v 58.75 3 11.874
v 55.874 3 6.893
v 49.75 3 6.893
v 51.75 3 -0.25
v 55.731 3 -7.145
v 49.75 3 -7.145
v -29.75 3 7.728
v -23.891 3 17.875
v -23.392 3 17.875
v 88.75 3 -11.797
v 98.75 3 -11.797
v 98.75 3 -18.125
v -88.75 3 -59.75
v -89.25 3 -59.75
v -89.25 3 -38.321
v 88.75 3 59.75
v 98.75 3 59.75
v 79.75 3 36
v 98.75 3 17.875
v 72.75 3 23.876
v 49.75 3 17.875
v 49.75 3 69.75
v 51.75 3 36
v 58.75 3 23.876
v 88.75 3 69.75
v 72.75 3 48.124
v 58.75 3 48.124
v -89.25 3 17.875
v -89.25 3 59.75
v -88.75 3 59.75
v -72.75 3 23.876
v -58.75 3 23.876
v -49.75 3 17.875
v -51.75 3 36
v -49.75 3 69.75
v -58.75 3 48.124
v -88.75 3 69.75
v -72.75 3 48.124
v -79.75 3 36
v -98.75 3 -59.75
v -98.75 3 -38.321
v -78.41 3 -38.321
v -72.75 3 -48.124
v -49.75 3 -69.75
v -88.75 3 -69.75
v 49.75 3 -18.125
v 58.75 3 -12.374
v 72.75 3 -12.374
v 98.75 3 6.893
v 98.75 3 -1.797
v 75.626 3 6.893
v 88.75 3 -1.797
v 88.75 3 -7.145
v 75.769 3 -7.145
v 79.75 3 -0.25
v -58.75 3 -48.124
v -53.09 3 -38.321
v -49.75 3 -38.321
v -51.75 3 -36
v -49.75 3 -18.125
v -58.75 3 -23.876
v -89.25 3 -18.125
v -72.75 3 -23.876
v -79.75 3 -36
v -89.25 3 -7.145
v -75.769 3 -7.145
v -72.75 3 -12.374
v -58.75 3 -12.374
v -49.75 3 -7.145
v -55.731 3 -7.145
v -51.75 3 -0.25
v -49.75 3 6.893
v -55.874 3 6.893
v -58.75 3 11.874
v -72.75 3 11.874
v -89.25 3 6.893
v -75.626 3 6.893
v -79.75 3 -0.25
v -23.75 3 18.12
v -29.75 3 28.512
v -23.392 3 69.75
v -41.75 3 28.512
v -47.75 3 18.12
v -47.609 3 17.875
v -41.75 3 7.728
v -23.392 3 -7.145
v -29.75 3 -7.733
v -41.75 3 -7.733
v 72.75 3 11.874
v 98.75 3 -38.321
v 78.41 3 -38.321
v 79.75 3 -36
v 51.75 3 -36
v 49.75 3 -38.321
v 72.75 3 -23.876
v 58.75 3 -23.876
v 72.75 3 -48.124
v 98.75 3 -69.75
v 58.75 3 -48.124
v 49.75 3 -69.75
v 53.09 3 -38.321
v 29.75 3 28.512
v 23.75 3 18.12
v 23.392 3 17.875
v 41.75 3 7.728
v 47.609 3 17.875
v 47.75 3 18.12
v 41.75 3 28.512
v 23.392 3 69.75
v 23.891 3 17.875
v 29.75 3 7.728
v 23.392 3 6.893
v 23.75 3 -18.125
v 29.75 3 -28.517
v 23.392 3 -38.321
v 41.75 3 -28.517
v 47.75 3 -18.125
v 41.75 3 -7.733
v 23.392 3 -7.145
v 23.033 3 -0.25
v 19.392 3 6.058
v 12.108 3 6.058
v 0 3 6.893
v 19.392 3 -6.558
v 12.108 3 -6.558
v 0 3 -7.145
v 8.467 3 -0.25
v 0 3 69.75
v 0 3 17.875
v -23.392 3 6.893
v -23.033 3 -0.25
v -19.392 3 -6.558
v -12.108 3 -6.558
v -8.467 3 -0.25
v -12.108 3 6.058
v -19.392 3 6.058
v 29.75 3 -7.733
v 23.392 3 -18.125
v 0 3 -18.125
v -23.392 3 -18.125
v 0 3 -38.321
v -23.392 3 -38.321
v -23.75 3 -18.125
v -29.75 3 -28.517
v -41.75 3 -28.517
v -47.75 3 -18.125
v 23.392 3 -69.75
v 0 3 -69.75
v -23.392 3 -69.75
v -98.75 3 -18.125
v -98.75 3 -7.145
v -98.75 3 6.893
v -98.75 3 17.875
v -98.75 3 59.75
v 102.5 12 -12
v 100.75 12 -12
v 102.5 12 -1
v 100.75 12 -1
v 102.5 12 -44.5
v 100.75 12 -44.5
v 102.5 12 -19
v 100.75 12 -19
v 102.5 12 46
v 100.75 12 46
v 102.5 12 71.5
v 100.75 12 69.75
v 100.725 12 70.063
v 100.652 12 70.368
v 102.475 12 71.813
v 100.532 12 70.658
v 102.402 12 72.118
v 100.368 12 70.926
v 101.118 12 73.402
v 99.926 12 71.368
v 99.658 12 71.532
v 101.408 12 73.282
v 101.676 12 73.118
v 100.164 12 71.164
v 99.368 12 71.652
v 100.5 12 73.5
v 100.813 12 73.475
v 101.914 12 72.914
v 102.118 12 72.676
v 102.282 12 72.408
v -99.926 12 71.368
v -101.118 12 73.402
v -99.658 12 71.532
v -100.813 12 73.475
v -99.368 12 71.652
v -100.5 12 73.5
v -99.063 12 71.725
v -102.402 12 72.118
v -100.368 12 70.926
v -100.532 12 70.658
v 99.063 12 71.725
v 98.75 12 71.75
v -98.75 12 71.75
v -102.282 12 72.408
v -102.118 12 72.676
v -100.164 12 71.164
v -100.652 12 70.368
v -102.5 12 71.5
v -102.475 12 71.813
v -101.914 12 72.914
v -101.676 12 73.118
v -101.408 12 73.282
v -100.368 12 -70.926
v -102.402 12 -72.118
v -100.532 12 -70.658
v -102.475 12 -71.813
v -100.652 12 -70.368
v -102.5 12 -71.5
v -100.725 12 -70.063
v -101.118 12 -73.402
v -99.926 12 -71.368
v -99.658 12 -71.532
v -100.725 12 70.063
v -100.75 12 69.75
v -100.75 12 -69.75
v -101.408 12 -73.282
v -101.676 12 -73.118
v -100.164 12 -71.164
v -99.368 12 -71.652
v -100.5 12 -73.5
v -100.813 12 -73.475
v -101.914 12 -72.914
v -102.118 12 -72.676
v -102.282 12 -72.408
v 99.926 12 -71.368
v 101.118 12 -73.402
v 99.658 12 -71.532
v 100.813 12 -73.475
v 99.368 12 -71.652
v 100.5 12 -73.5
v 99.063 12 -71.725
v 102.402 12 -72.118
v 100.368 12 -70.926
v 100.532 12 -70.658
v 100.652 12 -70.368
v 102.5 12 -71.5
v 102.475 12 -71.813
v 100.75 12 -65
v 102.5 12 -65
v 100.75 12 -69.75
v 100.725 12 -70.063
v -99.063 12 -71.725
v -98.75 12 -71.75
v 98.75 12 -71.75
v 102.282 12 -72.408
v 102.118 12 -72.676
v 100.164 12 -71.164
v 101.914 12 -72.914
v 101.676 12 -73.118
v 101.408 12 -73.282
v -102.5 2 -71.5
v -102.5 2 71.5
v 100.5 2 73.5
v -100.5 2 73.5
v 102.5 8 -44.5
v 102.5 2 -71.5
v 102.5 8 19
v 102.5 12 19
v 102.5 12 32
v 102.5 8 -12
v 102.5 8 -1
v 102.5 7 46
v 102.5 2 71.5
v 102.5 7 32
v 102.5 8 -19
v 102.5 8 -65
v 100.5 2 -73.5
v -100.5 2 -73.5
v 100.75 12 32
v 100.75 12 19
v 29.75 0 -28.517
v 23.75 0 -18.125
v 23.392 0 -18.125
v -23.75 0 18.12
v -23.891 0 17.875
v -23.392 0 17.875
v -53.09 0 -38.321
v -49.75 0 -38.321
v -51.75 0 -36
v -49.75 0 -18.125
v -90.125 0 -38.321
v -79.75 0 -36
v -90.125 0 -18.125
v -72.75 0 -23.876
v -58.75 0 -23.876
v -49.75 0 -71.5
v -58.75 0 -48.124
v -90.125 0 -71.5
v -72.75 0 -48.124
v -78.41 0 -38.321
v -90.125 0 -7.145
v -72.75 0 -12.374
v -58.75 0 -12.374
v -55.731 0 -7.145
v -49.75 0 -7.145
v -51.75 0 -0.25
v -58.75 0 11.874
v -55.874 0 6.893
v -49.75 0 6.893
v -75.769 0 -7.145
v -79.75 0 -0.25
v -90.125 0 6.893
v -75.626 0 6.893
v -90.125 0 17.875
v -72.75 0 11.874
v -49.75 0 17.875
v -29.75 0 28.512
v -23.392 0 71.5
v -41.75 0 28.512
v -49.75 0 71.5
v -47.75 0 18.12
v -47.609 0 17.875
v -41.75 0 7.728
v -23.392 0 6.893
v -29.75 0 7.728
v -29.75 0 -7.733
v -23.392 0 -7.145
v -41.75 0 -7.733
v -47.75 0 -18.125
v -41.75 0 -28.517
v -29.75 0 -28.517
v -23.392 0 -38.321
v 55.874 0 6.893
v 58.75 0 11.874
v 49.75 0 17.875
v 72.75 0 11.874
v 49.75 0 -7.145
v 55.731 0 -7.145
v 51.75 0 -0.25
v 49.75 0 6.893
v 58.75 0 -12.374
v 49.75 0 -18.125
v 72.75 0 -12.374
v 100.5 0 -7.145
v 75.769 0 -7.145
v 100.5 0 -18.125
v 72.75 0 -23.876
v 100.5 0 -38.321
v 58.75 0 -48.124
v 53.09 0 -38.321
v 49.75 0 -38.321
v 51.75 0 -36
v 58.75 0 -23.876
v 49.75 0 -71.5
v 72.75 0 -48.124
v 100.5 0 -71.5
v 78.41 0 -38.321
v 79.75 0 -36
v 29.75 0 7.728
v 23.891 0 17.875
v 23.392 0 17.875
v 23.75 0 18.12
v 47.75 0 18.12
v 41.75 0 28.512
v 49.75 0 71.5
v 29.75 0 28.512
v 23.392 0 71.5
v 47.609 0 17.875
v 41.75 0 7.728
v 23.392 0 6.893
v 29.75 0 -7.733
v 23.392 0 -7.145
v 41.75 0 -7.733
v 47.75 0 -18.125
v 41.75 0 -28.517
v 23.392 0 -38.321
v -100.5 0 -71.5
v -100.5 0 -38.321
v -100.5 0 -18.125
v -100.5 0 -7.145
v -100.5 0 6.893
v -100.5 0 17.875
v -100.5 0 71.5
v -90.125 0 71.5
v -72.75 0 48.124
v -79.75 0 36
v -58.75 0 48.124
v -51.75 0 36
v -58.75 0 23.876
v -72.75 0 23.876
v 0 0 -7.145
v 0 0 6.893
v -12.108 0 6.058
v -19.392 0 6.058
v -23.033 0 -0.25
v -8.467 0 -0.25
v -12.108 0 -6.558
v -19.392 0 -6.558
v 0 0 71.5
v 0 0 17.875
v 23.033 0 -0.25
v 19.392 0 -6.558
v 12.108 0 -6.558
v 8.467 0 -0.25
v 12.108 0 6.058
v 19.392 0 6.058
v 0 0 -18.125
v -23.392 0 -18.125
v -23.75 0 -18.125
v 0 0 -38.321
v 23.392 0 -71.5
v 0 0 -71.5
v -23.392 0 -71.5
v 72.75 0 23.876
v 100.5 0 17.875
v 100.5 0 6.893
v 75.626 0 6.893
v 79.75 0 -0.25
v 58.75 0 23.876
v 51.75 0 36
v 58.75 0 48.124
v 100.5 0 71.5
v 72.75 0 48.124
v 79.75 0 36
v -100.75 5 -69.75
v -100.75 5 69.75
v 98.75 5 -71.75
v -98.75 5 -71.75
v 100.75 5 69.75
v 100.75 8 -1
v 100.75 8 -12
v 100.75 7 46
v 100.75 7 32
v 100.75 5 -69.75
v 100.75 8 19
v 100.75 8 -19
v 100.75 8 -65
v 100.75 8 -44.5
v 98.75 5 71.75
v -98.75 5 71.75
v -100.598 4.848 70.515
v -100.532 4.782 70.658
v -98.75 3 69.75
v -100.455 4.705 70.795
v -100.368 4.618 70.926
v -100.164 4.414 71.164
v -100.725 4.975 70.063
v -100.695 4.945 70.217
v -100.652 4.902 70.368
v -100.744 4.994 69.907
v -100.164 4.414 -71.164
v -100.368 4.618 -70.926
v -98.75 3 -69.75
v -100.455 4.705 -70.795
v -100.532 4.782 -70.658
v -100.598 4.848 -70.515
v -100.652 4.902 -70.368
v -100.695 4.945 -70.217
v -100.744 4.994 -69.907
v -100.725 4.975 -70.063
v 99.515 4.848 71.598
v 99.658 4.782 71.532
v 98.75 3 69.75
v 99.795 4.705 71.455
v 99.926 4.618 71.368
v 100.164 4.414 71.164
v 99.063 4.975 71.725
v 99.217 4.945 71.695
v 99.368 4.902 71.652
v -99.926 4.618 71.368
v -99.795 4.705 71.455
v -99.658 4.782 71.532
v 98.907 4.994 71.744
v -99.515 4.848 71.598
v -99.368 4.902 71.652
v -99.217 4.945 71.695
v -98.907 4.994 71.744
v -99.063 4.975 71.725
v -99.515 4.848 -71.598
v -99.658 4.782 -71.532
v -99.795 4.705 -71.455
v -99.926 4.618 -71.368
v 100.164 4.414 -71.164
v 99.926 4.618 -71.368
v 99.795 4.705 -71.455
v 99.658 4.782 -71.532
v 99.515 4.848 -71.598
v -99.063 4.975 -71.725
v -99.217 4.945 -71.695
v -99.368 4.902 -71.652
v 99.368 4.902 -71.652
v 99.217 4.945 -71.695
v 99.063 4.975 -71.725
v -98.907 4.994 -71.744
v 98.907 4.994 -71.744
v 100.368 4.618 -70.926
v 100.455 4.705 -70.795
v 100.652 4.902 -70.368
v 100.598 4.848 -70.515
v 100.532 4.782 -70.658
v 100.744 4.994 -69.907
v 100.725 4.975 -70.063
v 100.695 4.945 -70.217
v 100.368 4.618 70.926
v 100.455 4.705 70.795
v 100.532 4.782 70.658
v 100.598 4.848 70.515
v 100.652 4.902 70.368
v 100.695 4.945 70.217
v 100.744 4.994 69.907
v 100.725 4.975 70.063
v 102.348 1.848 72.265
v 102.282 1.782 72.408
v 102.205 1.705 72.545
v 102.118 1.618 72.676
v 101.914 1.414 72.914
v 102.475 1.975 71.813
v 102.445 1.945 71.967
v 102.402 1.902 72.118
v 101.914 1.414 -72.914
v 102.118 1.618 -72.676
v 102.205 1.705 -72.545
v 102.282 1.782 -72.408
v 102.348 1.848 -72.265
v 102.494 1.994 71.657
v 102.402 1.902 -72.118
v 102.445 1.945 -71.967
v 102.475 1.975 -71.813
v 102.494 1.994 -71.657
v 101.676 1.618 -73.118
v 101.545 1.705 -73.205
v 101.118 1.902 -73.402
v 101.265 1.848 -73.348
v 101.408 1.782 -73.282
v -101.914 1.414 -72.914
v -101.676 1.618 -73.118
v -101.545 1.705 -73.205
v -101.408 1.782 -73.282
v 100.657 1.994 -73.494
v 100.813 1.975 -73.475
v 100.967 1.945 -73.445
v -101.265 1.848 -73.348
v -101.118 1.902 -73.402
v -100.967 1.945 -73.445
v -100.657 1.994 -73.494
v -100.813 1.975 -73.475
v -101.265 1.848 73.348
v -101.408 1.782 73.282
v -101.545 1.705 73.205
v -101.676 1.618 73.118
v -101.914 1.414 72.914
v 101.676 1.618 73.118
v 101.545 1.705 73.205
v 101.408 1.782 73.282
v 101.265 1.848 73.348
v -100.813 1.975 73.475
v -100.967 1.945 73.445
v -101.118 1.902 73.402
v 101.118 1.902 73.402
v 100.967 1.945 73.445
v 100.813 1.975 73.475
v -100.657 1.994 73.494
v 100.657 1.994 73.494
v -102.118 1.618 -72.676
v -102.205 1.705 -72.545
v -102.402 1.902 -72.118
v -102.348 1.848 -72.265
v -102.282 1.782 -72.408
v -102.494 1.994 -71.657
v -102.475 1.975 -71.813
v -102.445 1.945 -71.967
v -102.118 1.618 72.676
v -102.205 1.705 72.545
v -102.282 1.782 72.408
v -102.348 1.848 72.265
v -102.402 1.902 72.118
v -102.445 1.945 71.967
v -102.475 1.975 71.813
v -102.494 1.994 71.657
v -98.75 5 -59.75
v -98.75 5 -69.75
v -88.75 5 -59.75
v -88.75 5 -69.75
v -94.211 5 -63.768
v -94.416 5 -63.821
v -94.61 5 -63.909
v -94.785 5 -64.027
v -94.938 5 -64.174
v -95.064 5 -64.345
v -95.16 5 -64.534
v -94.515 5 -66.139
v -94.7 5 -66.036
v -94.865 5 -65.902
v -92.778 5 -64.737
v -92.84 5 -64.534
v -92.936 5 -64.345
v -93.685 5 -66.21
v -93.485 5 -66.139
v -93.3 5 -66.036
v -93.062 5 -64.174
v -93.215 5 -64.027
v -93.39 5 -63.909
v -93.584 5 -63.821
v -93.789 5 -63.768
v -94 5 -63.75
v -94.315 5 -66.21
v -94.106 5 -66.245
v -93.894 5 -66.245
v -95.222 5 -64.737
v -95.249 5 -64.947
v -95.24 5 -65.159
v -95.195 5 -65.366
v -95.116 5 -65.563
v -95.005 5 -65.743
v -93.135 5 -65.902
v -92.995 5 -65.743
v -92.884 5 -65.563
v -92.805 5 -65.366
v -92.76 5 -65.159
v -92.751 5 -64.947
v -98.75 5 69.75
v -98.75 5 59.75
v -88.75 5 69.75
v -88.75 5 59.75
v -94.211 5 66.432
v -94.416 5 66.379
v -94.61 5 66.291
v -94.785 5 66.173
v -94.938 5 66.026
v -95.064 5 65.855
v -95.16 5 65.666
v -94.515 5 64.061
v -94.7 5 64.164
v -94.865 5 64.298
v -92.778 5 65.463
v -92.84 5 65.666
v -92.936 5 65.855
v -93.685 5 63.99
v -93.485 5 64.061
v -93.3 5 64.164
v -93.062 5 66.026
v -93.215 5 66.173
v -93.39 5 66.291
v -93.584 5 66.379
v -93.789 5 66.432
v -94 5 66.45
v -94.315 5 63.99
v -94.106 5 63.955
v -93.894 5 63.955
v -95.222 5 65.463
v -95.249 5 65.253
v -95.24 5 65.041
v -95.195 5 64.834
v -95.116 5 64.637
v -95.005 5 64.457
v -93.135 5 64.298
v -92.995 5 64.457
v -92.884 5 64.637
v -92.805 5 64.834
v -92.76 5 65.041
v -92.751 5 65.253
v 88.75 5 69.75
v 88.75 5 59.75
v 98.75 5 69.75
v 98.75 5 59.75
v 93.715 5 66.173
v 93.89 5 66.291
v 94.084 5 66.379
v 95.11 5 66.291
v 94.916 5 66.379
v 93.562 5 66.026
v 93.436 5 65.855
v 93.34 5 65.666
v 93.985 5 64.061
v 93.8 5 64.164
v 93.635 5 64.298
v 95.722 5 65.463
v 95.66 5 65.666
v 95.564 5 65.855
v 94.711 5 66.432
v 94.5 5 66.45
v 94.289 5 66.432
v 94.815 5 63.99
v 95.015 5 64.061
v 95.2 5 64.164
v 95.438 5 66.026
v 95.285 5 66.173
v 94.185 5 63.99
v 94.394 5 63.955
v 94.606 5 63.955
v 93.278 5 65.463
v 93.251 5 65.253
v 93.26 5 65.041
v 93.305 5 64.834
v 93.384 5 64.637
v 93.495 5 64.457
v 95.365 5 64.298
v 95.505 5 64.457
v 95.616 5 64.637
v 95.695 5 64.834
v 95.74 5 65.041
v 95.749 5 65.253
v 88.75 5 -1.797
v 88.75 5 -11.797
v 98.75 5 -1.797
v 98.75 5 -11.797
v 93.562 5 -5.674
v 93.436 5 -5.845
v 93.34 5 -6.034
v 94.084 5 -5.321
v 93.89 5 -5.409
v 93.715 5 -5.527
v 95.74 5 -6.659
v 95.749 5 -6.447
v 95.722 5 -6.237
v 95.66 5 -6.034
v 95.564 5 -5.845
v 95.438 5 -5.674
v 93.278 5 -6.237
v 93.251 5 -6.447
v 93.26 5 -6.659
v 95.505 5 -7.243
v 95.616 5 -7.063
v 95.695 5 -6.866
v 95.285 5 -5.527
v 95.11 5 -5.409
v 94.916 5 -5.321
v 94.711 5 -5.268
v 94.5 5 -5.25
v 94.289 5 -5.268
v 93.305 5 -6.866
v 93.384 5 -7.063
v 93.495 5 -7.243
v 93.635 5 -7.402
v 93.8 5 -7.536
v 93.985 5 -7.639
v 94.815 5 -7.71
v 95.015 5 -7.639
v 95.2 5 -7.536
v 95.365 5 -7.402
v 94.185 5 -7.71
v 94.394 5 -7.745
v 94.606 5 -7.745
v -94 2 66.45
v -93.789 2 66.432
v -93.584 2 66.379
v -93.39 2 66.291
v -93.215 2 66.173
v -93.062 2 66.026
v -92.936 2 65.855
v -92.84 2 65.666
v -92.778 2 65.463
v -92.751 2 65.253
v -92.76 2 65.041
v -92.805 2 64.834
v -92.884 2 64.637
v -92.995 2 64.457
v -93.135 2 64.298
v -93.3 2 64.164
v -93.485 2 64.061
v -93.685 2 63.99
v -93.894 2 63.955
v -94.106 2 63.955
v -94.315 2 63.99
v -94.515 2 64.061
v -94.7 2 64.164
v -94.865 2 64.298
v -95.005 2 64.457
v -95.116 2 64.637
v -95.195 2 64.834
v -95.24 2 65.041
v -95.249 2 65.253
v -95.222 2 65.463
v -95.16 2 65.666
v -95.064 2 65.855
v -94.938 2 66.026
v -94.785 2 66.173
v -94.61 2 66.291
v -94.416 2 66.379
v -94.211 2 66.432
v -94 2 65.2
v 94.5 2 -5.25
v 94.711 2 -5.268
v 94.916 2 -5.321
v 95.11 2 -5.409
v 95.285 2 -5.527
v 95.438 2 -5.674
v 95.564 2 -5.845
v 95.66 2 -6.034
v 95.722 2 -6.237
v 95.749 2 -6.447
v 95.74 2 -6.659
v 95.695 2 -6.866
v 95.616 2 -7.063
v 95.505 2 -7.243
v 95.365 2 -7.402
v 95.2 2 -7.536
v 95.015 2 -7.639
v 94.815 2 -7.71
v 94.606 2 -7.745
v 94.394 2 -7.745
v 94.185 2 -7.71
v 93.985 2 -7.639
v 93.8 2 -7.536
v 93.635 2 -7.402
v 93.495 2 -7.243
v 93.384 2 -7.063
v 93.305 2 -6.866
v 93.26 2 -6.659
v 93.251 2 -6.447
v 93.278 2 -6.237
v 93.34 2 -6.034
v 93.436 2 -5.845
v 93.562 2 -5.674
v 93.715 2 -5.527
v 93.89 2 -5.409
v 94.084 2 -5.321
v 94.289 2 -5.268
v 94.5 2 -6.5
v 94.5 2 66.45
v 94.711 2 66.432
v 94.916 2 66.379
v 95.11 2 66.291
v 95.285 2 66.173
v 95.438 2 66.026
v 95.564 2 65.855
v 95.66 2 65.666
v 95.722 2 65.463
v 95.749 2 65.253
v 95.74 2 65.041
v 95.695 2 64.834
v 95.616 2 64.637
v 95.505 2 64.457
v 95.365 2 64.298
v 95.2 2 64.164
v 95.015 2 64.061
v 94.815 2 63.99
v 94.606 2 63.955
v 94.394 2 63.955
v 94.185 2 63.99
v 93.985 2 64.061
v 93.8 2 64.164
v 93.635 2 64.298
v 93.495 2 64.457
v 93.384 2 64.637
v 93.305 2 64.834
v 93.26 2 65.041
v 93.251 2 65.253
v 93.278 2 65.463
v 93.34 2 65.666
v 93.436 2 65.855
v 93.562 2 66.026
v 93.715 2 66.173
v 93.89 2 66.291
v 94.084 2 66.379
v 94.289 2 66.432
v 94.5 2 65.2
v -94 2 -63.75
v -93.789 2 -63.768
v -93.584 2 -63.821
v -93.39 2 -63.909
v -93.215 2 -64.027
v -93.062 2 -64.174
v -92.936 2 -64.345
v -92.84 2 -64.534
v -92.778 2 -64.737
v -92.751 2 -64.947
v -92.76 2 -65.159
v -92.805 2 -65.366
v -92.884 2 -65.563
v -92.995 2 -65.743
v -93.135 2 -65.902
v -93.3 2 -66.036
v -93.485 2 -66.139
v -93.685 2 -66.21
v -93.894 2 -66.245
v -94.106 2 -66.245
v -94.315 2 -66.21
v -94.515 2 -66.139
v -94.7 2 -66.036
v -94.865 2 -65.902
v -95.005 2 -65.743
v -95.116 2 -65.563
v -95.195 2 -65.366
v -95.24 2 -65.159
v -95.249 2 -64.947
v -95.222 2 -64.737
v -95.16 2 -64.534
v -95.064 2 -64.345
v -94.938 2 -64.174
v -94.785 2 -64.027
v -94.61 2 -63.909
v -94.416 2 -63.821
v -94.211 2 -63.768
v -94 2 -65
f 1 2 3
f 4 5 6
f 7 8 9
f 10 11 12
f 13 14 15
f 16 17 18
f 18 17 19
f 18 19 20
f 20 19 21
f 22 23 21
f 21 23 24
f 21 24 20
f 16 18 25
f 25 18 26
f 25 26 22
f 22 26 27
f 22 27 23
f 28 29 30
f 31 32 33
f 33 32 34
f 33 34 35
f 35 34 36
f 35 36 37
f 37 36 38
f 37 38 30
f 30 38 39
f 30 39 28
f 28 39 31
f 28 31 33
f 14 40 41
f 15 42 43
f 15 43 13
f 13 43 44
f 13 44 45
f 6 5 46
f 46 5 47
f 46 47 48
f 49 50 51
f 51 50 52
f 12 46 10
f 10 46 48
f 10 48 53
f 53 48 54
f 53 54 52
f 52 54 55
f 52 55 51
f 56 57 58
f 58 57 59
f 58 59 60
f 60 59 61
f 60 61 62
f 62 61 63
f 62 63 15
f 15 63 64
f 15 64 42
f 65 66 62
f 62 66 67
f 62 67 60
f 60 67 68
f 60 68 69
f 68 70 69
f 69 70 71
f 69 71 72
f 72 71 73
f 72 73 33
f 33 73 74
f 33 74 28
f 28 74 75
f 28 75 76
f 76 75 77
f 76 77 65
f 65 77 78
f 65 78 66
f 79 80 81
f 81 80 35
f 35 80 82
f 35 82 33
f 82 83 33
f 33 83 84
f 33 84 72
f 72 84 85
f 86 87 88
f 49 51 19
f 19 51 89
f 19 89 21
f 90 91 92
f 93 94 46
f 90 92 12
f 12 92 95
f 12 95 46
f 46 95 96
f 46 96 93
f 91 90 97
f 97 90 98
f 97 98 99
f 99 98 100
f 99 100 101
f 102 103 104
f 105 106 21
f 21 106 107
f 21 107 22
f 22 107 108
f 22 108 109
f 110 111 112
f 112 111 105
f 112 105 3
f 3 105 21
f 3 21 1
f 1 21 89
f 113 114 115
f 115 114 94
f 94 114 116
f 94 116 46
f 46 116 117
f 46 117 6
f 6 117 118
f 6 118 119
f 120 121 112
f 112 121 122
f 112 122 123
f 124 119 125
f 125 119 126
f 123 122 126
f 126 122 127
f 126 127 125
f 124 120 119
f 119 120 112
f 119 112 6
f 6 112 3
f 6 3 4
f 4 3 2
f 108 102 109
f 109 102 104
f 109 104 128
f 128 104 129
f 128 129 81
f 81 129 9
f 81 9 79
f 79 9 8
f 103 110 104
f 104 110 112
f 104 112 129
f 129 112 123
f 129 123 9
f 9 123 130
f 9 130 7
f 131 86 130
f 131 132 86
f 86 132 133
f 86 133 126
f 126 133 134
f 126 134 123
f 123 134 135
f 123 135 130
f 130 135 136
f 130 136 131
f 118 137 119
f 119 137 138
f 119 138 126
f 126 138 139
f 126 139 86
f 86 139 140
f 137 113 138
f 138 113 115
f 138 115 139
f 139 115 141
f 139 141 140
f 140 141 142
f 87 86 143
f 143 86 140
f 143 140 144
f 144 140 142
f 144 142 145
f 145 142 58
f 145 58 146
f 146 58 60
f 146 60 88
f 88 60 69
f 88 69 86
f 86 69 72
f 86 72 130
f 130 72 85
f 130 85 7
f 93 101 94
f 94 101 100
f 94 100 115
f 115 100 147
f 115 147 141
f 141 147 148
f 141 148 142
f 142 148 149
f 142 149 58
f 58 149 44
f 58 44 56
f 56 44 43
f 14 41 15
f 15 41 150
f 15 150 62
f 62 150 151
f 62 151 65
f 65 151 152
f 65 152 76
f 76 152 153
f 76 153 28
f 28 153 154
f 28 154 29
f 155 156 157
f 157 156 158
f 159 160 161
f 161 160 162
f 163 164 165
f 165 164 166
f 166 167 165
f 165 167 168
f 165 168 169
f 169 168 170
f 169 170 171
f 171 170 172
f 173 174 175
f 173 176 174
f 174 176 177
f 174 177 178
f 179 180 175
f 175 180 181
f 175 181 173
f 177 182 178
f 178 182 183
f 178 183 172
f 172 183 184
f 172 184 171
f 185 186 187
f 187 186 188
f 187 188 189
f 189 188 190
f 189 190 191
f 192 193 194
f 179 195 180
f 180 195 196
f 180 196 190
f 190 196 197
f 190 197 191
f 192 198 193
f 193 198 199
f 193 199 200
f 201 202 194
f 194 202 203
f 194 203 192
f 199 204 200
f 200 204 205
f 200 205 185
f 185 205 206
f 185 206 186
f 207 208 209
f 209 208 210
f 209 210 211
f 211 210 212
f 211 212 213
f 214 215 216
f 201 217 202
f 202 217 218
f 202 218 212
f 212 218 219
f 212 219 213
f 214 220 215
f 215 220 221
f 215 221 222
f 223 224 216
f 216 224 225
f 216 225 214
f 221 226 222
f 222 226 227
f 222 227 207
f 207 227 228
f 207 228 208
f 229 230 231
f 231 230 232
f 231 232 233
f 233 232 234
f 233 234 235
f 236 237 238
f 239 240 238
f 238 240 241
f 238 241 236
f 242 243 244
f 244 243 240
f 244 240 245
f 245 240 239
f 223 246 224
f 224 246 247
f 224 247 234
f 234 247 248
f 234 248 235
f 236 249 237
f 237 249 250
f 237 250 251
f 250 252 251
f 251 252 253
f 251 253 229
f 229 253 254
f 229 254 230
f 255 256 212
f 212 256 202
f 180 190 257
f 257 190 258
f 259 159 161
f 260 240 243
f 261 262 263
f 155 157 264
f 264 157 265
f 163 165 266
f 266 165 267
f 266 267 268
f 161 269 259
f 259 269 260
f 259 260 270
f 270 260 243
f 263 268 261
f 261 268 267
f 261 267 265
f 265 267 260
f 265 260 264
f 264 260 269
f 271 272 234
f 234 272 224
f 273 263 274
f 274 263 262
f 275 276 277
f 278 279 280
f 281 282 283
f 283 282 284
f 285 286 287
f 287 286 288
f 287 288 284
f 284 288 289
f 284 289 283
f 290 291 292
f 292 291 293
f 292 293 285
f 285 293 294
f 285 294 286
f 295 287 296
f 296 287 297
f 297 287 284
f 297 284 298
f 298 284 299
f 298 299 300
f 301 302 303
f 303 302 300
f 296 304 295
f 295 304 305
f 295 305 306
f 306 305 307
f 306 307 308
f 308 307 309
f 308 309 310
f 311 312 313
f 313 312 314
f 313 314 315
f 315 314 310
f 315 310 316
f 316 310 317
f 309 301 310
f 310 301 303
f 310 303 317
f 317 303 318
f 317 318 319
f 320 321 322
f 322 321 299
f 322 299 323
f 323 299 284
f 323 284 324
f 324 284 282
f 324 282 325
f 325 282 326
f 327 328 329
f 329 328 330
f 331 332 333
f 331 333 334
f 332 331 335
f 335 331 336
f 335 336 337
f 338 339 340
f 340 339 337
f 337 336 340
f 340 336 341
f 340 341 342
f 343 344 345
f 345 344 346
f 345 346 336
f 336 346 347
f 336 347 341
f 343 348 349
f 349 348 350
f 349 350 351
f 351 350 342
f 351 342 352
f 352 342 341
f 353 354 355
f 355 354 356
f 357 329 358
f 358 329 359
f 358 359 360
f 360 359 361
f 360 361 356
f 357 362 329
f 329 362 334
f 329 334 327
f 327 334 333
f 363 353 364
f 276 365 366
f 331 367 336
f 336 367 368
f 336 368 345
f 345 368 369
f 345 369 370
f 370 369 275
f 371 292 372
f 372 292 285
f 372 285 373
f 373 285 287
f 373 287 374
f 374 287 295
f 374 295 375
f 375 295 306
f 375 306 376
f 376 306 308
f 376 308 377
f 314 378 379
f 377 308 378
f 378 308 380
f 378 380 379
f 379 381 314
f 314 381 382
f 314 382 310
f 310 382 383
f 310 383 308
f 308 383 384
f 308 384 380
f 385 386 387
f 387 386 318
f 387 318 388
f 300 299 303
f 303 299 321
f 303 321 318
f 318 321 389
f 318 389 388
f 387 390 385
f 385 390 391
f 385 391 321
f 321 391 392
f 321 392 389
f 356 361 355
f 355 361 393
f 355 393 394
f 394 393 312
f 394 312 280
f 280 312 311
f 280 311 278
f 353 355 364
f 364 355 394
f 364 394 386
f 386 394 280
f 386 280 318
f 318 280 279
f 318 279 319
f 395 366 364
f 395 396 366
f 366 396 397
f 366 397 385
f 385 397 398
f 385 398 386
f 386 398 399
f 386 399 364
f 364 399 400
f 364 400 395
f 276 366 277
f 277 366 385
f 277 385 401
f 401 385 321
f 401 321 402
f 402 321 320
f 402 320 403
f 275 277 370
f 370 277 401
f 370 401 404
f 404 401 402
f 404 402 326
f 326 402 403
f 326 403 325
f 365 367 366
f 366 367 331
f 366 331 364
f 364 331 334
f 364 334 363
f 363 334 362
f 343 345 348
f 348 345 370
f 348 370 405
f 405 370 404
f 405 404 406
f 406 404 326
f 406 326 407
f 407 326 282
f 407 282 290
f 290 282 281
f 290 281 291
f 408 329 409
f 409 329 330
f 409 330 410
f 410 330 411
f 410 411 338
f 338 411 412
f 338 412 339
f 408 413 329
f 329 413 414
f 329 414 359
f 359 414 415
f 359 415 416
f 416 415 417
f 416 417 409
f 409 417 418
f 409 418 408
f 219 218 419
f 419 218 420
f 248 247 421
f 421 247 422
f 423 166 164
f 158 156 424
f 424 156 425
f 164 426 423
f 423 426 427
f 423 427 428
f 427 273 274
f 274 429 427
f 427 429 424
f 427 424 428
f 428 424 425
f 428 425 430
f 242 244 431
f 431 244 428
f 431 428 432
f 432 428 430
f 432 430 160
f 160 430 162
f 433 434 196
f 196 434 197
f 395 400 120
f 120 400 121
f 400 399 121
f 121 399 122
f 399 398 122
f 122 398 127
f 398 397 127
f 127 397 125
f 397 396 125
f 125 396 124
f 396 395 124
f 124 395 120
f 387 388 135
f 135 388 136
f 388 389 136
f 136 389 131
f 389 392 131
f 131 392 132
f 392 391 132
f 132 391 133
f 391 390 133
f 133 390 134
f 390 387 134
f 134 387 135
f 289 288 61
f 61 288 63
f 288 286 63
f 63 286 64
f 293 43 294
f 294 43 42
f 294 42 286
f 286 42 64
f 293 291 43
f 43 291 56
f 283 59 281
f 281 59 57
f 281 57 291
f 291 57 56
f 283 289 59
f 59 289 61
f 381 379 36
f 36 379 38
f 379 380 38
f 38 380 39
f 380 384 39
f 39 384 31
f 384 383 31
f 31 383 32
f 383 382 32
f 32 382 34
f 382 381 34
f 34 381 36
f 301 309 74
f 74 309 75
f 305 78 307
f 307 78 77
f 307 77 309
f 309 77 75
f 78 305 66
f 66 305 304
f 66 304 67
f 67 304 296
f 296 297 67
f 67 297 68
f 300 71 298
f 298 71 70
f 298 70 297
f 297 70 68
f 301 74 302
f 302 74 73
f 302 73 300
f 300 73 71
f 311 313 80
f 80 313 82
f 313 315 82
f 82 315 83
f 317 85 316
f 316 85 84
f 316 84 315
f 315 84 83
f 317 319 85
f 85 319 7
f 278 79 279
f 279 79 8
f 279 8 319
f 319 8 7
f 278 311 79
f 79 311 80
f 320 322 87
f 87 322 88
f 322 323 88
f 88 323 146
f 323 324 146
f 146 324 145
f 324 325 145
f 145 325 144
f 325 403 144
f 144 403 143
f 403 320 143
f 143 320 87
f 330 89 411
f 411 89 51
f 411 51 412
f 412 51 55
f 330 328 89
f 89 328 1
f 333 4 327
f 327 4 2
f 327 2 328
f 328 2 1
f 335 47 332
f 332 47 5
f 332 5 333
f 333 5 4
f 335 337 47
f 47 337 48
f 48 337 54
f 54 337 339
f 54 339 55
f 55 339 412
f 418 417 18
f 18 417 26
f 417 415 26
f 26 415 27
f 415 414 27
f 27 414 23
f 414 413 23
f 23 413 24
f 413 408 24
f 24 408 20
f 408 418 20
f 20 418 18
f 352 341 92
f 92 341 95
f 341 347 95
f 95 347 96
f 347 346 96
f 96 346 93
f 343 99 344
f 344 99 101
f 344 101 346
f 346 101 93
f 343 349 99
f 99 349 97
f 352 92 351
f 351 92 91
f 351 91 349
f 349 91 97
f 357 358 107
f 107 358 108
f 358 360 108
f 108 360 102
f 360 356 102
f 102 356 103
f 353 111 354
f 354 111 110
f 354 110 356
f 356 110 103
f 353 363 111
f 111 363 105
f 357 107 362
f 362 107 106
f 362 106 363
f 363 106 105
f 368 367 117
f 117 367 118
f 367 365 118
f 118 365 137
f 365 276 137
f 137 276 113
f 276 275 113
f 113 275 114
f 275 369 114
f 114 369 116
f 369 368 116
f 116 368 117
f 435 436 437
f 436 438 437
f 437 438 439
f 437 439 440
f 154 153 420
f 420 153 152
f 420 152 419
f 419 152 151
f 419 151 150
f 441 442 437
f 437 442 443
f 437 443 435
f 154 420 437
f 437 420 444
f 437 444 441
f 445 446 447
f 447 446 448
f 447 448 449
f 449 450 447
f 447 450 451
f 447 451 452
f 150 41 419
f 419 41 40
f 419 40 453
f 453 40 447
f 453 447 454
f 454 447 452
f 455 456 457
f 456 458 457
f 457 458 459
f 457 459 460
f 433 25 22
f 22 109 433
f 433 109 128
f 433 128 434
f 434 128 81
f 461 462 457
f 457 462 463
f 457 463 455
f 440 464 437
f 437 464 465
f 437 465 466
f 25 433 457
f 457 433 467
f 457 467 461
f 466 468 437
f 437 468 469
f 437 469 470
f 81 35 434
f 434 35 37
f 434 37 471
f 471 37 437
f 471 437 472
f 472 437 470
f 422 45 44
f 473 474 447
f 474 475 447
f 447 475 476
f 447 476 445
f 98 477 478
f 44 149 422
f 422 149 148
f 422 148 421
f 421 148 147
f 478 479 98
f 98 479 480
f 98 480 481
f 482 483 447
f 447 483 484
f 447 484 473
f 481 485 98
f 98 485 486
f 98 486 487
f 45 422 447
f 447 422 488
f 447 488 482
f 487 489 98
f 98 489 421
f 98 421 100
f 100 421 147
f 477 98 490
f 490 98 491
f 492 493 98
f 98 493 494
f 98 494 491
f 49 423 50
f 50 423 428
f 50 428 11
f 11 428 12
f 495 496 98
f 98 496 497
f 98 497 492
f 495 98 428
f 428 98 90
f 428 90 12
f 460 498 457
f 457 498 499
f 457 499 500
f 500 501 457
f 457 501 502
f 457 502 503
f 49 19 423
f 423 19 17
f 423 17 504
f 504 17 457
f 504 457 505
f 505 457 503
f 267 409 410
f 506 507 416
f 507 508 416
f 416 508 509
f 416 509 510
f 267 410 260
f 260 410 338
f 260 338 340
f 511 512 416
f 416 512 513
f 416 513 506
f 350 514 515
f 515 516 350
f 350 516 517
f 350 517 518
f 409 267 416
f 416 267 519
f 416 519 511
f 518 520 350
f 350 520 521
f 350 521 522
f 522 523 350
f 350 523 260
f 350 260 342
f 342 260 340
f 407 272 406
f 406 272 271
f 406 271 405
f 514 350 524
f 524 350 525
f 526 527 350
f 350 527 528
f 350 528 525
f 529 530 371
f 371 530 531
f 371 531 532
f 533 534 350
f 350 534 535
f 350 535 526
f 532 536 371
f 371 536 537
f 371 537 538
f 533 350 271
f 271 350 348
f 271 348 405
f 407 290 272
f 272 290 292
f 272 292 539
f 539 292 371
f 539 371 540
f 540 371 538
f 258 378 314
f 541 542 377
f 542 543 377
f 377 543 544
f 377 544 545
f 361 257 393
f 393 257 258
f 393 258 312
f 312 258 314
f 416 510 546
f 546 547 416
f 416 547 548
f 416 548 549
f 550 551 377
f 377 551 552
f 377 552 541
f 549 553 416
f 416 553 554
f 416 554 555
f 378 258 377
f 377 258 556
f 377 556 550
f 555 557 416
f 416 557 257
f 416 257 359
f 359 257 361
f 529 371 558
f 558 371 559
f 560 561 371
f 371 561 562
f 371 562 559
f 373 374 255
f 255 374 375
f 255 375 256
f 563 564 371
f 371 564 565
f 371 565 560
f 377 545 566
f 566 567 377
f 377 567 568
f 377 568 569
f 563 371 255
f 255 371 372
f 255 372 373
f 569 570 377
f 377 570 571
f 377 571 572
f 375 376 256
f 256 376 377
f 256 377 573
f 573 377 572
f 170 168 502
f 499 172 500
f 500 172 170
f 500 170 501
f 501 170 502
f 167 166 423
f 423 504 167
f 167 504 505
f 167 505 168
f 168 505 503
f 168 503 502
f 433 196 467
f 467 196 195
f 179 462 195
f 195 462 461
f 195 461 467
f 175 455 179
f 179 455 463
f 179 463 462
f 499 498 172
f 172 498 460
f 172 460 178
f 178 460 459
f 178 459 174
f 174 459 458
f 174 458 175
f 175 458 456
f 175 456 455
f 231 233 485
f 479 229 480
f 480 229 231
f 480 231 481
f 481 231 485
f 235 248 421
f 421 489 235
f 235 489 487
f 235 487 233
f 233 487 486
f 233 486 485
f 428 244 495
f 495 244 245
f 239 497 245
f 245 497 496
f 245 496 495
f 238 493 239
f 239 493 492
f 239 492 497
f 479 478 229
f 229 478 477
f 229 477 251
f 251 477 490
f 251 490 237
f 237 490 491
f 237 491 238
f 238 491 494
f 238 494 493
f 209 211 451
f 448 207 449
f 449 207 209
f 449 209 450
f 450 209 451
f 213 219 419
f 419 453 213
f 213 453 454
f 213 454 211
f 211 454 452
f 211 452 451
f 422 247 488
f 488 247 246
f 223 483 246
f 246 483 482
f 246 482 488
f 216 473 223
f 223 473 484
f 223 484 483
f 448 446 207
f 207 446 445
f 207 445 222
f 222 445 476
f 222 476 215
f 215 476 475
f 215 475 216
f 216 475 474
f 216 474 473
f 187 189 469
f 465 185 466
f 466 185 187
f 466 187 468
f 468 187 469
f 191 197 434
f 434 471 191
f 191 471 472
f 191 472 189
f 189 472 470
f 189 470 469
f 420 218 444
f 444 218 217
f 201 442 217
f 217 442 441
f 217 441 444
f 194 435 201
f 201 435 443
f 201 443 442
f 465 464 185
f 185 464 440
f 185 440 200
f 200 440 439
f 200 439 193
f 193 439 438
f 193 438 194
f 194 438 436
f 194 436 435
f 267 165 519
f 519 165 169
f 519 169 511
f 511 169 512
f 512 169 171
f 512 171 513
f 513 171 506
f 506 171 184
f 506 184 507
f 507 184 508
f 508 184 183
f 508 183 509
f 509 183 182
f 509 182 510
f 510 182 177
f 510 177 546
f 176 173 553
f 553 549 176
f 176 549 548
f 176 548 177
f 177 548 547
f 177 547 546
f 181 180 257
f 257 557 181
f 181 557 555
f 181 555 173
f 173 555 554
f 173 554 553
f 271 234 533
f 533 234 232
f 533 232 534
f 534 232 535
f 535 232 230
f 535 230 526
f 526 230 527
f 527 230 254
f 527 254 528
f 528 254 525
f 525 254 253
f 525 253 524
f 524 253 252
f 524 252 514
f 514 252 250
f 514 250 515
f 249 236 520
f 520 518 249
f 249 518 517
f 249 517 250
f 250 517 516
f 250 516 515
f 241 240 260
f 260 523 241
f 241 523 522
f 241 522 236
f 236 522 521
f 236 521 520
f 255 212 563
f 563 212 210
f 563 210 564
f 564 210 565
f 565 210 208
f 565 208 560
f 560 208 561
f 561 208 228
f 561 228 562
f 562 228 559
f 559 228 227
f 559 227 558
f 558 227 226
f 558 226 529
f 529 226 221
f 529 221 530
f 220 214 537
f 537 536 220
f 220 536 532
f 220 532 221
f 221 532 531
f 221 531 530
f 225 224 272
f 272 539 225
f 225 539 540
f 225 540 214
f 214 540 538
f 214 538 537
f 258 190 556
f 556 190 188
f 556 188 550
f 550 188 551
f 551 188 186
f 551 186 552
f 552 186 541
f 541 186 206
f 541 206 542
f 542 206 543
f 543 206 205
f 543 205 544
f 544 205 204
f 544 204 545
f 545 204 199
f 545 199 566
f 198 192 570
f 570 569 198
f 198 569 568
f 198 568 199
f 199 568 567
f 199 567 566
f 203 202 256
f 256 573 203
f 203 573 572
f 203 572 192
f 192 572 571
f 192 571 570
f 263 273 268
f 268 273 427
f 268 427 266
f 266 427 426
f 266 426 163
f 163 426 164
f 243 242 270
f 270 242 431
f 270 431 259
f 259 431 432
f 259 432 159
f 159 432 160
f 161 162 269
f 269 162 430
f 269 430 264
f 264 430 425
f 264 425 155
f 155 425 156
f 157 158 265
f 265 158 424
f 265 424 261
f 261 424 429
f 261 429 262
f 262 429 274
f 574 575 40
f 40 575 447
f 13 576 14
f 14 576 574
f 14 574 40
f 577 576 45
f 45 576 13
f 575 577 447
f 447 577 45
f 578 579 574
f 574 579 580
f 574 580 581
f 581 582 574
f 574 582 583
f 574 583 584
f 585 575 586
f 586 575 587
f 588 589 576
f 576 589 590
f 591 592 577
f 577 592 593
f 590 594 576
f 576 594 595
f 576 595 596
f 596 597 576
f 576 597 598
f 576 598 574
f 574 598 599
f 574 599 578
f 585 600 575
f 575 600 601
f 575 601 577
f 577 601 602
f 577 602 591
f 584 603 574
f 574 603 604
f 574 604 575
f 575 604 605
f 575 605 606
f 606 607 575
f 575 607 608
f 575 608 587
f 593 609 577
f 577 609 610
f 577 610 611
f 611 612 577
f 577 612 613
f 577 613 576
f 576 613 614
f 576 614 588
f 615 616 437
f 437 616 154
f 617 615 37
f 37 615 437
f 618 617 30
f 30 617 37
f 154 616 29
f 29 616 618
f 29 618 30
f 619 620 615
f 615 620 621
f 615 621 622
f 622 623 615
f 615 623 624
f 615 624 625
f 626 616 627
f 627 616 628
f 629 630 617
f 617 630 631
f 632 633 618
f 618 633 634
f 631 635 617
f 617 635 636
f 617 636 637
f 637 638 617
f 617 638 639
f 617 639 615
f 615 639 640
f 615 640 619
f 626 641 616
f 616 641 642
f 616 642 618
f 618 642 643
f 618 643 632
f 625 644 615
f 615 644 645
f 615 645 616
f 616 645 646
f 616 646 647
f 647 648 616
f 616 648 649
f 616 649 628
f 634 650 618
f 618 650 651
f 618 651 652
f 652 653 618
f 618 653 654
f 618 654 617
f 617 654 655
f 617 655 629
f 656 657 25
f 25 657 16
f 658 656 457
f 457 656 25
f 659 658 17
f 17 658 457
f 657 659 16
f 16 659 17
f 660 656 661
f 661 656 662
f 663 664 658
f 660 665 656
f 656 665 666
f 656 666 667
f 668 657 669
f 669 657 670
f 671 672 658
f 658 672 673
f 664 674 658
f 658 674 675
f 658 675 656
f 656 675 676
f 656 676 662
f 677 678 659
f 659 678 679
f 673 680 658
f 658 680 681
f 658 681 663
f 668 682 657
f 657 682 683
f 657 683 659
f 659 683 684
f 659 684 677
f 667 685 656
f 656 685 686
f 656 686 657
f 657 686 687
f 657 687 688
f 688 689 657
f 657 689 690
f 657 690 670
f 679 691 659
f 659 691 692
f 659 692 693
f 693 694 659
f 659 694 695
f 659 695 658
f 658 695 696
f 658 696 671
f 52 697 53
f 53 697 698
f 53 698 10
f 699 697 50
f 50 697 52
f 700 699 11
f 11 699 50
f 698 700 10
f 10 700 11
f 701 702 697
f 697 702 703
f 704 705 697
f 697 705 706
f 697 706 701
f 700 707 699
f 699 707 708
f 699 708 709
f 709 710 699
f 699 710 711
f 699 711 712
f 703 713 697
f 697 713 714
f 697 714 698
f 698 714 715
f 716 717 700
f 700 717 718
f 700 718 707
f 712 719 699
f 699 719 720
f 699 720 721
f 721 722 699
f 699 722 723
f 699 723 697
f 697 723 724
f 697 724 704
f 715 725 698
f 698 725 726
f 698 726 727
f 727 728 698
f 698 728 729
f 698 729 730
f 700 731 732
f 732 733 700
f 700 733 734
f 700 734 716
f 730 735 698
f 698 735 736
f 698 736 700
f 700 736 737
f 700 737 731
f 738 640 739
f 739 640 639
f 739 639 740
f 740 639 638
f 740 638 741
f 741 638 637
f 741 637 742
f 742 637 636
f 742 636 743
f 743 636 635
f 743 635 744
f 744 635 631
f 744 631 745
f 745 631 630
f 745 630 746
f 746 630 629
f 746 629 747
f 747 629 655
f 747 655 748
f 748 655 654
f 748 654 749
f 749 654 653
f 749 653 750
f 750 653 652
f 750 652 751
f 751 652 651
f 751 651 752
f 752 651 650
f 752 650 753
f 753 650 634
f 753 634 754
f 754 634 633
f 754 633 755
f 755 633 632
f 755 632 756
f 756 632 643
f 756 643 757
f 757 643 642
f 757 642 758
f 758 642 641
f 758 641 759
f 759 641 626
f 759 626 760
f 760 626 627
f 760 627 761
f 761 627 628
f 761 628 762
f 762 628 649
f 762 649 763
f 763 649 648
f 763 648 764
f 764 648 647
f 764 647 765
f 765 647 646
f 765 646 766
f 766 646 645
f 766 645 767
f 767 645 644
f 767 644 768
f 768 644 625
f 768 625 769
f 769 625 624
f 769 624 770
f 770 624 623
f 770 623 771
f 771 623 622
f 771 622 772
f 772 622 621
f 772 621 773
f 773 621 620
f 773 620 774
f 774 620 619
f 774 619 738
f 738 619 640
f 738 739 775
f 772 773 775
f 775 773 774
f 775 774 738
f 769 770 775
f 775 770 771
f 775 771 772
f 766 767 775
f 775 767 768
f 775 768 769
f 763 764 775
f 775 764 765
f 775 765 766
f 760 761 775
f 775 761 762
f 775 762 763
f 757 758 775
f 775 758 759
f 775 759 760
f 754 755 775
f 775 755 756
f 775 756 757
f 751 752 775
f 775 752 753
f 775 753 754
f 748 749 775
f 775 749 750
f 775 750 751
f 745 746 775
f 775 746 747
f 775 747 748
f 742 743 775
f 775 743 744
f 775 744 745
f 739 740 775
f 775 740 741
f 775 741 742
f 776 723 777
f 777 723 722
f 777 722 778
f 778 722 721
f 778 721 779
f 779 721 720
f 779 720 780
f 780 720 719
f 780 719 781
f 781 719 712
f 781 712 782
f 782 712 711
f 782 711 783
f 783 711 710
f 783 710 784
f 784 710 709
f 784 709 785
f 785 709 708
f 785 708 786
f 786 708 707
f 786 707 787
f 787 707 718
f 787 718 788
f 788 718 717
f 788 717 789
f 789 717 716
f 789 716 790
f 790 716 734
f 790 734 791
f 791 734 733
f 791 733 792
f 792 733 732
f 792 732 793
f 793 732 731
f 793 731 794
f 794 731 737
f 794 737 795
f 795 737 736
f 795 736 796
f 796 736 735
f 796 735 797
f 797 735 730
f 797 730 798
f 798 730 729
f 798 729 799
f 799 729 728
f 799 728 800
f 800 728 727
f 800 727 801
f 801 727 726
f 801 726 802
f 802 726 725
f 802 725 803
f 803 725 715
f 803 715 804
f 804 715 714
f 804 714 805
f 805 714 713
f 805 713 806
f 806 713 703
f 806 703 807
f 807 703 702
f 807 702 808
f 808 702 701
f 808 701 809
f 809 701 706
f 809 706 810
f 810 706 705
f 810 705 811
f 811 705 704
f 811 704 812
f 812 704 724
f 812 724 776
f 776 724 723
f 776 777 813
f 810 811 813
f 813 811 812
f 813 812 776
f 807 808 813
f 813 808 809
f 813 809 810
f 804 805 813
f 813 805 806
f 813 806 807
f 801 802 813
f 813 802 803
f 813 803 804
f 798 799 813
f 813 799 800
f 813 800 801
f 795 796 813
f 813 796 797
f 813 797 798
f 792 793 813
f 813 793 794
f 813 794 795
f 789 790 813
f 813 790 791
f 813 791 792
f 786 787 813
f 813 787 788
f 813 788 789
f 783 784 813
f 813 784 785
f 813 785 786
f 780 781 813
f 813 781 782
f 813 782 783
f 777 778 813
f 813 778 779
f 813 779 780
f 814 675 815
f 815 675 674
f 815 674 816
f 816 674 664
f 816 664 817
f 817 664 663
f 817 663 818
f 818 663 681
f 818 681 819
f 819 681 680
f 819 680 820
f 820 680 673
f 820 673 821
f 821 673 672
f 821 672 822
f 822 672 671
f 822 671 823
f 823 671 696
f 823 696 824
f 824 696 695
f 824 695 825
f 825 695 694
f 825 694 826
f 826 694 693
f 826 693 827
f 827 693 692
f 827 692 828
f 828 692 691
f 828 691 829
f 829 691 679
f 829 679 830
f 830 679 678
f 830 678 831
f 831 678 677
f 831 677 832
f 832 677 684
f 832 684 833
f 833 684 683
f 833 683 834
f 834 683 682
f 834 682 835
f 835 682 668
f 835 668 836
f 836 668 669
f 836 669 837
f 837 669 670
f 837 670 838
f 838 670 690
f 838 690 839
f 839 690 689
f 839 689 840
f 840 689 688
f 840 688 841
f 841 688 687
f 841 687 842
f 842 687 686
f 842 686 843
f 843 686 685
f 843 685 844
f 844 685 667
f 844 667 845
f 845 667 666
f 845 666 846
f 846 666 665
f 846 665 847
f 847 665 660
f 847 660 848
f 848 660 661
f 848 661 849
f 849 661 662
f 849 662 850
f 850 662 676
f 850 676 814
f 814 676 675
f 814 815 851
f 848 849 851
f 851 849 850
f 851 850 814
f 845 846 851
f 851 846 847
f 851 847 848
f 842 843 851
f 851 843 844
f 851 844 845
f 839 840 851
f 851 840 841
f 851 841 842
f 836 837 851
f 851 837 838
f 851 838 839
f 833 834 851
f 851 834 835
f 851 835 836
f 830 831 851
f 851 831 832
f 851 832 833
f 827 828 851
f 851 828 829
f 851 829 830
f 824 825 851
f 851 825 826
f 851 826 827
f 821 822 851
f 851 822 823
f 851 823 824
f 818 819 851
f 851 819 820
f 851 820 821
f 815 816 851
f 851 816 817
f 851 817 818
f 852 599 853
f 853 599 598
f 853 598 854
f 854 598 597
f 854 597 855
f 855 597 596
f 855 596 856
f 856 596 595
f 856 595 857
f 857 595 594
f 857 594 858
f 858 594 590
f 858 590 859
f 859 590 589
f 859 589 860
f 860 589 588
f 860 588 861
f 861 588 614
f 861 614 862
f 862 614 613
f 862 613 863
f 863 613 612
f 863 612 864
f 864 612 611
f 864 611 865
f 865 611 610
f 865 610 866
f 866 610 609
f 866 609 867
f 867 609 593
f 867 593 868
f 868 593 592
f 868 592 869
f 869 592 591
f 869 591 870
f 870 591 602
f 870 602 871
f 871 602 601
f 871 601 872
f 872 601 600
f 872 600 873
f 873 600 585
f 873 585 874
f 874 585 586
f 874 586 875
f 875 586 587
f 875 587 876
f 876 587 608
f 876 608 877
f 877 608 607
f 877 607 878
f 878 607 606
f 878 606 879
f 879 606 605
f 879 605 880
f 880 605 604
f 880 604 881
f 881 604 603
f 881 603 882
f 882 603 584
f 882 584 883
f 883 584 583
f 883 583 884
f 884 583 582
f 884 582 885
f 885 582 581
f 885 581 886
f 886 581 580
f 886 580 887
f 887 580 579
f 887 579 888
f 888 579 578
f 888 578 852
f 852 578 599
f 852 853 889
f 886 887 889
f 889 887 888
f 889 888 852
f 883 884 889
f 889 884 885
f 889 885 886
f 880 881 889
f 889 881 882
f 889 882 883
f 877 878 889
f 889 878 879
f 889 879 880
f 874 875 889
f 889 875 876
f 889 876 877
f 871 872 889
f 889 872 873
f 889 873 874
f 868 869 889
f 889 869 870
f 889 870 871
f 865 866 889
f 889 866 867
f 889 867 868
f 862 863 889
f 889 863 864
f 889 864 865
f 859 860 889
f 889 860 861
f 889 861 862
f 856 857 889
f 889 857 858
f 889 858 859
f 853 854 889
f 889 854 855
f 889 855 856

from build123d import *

# Parameters (mm, degrees)
SKETCH1_W           = 205
SKETCH1_H           = 147
BOSS_EXTRUDE1_DEPTH = 12
SKETCH2_W           = 201.5
SKETCH2_H           = 143.5
CUT_EXTRUDE1_DEPTH  = 9
CUT_EXTRUDE2_DEPTH  = 4
CHAMFER1_SIZE       = 2
FILLET1_R           = 2
SKETCH4_W           = 14
SKETCH4_H           = 5
SKETCH4_W_2         = 20
SKETCH4_H_2         = 4
SKETCH4_W_3         = 7
SKETCH4_W_4         = 20.5
CUT_EXTRUDE3_DEPTH  = 10
SKETCH5_W           = 10
SKETCH5_H           = 10
BOSS_EXTRUDE2_DEPTH = 2
SKETCH6_R           = 1.25
CUT_EXTRUDE4_DEPTH  = 3


with BuildPart() as part:
    # Sketch1 → Boss-Extrude1 (new body)
    with BuildSketch(Plane(origin=(0, 0, 0), x_dir=(1, 0, 0), z_dir=(0, 1, 0))):
        Rectangle(SKETCH1_W, SKETCH1_H)
    extrude(amount=BOSS_EXTRUDE1_DEPTH)

    # Sketch2 → Cut-Extrude1 (cut)
    with BuildSketch(Plane(origin=(0, 12, 0), x_dir=(1, 0, 0), z_dir=(0, 1, 0))):
        Rectangle(SKETCH2_W, SKETCH2_H)
    extrude(amount=-CUT_EXTRUDE1_DEPTH, mode=Mode.SUBTRACT)

    # Sketch3 → Cut-Extrude2 (cut, through all)
    with BuildSketch(Plane(origin=(0, 3, 0), x_dir=(1, 0, 0), z_dir=(0, 1, 0))):
        Polygon((23.033460859, 0.25), (19.39173043, 6.557662131), (12.10826957, 6.557662131), (8.466539141, 0.25), (12.10826957, -6.057662131), (19.39173043, -6.057662131), align=None)
        Polygon((47.75, 18.125), (41.75, 28.517304845), (29.75, 28.517304845), (23.75, 18.125), (29.75, 7.732695155), (41.75, 7.732695155), align=None)
        Polygon((47.75, -18.12), (41.75, -7.727695155), (29.75, -7.727695155), (23.75, -18.12), (29.75, -28.512304845), (41.75, -28.512304845), align=None)
        Polygon((79.75, 0.25), (72.75, 12.374355653), (58.75, 12.374355653), (51.75, 0.25), (58.75, -11.874355653), (72.75, -11.874355653), align=None)
        Polygon((79.75, -36), (72.75, -23.875644347), (58.75, -23.875644347), (51.75, -36), (58.75, -48.124355653), (72.75, -48.124355653), align=None)
        Polygon((79.75, 36), (72.75, 48.124355653), (58.75, 48.124355653), (51.75, 36), (58.75, 23.875644347), (72.75, 23.875644347), align=None)
        Polygon((-19.39173043, -6.057662131), (-23.033460859, 0.25), (-19.39173043, 6.557662131), (-12.10826957, 6.557662131), (-8.466539141, 0.25), (-12.10826957, -6.057662131), align=None)
        Polygon((-72.75, 23.875644347), (-79.75, 36), (-72.75, 48.124355653), (-58.75, 48.124355653), (-51.75, 36), (-58.75, 23.875644347), align=None)
        Polygon((-72.75, -48.124355653), (-79.75, -36), (-72.75, -23.875644347), (-58.75, -23.875644347), (-51.75, -36), (-58.75, -48.124355653), align=None)
        Polygon((-72.75, -11.874355653), (-79.75, 0.25), (-72.75, 12.374355653), (-58.75, 12.374355653), (-51.75, 0.25), (-58.75, -11.874355653), align=None)
        Polygon((-41.75, -28.512304845), (-47.75, -18.12), (-41.75, -7.727695155), (-29.75, -7.727695155), (-23.75, -18.12), (-29.75, -28.512304845), align=None)
        Polygon((-41.75, 7.732695155), (-47.75, 18.125), (-41.75, 28.517304845), (-29.75, 28.517304845), (-23.75, 18.125), (-29.75, 7.732695155), align=None)
    extrude(amount=-CUT_EXTRUDE2_DEPTH, mode=Mode.SUBTRACT)

    # Chamfer1
    chamfer1_edges = [part.edges().sort_by_distance(p)[0] for p in [
        (-100.75, 3, 0),
        (0, 3, -71.75),
        (100.75, 3, 0),
        (0, 3, 71.75),
        (0, 0, -73.5),
        (102.5, 0, 0),
        (0, 0, 73.5),
        (-102.5, 0, 0),
    ]]
    chamfer(chamfer1_edges, length=CHAMFER1_SIZE)

    # Fillet1
    fillet1_edges = [part.edges().sort_by_distance(p)[0] for p in [
        (100.75, 8.5, -71.75),
        (100.75, 8.5, 71.75),
        (-100.75, 8.5, 71.75),
        (-100.75, 8.5, -71.75),
        (-102.5, 7, -73.5),
        (102.5, 7, -73.5),
        (102.5, 7, 73.5),
        (-102.5, 7, 73.5),
    ]]
    fillet(fillet1_edges, radius=FILLET1_R)

    # Sketch4 → Cut-Extrude3 (cut)
    with BuildSketch(Plane(origin=(102.5, 0, 0), x_dir=(0, 0, -1), z_dir=(1, 0, 0))):
        with Locations((-39, 9.5)):
            Rectangle(SKETCH4_W, SKETCH4_H)
        with Locations((-9, 10)):
            Rectangle(SKETCH4_W_2, SKETCH4_H_2)
        with Locations((15.5, 10)):
            Rectangle(SKETCH4_W_3, SKETCH4_H_2)
        with Locations((54.75, 10)):
            Rectangle(SKETCH4_W_4, SKETCH4_H_2)
    extrude(amount=-CUT_EXTRUDE3_DEPTH, mode=Mode.SUBTRACT)

    # Sketch5 → Boss-Extrude2 (add)
    with BuildSketch(Plane(origin=(0, 3, 0), x_dir=(1, 0, 0), z_dir=(0, 1, 0))):
        with Locations((-93.75, 64.75)):
            Rectangle(SKETCH5_W, SKETCH5_H)
        with Locations((-93.75, -64.75)):
            Rectangle(SKETCH5_W, SKETCH5_H)
        with Locations((93.75, -64.75)):
            Rectangle(SKETCH5_W, SKETCH5_H)
        with Locations((93.75, 6.796682995)):
            Rectangle(SKETCH5_W, SKETCH5_H)
    extrude(amount=BOSS_EXTRUDE2_DEPTH)

    # Sketch6 → Cut-Extrude4 (cut)
    with BuildSketch(Plane(origin=(0, 5, 0), x_dir=(1, 0, 0), z_dir=(0, 1, 0))):
        with Locations((-94, -65.2)):
            Circle(SKETCH6_R)
        with Locations((-94, 65)):
            Circle(SKETCH6_R)
        with Locations((94.5, 6.5)):
            Circle(SKETCH6_R)
        with Locations((94.5, -65.2)):
            Circle(SKETCH6_R)
    extrude(amount=-CUT_EXTRUDE4_DEPTH, mode=Mode.SUBTRACT)


solid = part.part
